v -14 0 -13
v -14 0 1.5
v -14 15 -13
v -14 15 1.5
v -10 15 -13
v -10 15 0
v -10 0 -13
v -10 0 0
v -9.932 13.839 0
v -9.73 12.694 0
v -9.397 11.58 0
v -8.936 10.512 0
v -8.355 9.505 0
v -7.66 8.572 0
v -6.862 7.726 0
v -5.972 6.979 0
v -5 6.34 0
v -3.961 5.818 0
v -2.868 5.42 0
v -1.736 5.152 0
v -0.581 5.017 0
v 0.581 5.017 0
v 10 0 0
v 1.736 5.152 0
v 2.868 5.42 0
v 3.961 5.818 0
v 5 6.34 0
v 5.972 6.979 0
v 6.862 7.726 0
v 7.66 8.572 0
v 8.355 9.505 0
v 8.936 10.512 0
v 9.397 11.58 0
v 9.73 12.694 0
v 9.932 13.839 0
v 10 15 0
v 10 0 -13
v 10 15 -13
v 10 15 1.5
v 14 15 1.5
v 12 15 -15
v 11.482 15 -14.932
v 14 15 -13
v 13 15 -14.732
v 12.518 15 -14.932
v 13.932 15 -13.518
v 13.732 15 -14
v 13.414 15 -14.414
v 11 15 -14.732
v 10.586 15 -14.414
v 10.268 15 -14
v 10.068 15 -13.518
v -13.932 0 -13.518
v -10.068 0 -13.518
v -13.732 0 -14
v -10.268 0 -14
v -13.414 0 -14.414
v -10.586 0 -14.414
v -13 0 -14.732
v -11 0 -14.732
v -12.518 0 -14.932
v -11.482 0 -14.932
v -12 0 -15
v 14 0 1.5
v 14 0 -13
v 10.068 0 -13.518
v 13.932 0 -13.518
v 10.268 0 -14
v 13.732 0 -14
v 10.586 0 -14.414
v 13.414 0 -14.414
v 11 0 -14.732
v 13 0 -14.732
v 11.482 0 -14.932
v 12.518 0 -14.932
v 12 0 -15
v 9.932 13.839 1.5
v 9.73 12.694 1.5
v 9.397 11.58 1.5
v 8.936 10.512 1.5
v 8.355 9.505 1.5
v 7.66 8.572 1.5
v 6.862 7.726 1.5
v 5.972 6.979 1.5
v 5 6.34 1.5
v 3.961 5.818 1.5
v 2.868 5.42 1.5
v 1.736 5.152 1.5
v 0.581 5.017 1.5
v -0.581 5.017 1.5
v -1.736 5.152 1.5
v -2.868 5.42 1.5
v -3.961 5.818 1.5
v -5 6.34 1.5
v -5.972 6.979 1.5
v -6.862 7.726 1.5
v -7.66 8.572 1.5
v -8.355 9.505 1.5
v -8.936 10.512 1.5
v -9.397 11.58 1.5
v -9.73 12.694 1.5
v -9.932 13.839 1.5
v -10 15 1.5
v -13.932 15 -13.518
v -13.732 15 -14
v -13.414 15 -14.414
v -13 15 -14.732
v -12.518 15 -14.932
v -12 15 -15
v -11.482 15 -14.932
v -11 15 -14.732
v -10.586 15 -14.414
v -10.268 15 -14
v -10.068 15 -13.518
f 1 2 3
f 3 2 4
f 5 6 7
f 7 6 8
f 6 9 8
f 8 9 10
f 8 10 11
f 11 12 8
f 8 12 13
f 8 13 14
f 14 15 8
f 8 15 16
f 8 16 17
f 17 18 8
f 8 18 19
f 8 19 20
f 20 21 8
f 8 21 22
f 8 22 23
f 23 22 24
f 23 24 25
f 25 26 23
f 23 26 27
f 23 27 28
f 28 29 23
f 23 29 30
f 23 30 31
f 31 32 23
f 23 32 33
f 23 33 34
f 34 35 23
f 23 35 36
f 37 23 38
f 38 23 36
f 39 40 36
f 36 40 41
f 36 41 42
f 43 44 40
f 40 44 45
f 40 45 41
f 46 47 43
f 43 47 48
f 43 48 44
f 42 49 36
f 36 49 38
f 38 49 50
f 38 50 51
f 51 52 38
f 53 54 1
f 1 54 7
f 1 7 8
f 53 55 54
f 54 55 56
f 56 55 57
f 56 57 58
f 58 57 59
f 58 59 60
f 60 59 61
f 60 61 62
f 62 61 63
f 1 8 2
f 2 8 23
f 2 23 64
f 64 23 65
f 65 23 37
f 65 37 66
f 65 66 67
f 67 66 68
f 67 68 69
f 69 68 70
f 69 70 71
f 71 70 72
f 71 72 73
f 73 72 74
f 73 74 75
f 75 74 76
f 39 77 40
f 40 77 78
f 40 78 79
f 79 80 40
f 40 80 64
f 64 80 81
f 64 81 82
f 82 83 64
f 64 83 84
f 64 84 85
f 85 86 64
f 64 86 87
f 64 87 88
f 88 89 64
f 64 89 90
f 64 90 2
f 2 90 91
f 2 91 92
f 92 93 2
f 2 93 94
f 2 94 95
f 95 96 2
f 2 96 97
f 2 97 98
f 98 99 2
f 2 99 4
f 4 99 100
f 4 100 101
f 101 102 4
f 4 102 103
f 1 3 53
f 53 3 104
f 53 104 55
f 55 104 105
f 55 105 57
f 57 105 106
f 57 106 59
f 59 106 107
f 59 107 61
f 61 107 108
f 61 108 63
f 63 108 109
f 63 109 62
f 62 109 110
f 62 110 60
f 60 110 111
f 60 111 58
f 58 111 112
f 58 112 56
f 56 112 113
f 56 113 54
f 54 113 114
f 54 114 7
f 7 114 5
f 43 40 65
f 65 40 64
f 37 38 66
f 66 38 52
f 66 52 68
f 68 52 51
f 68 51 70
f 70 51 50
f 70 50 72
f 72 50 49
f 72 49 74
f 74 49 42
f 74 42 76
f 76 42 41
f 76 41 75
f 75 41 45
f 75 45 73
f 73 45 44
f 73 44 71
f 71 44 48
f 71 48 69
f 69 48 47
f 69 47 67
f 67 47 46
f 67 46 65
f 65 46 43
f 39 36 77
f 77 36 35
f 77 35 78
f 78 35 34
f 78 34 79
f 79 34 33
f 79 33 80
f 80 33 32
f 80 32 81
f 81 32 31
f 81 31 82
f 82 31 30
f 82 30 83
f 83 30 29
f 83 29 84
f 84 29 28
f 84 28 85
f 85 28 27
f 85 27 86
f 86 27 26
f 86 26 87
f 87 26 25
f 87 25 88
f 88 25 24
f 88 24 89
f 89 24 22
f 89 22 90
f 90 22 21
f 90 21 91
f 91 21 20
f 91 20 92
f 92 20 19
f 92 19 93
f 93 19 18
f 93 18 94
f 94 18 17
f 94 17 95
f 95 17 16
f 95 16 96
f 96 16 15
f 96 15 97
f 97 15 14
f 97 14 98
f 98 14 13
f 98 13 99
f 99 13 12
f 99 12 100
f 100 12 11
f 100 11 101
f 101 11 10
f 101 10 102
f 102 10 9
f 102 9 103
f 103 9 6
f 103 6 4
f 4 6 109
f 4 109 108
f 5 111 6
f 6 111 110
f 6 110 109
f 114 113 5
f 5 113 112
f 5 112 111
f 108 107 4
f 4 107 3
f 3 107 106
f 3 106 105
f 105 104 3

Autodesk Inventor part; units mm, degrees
ref_plane "YZ Plane" through (0, 0, 0) normal (1, 0, 0) x (0, 1, 0)
ref_plane "XZ Plane" through (0, 0, 0) normal (0, 1, 0) x (-1, 0, 0)
ref_plane "XY Plane" through (0, 0, 0) normal (0, 0, 1) x (1, 0, 0)
sketch "Sketch1" plane through (0, 0, 0) normal (0, 1, 0) x (-1, 0, 0)
  line L0 (14, 0) -> (-14, 0) projected
  line L1 (0, -18.3) -> (0, 4.8) projected
  line L2 (14, 1.5) -> (-14, 1.5)
  line L3 (-14, 1.5) -> (-14, 0)
  line L4 (-10, 0) -> (10, 0)
  line L5 (14, 0) -> (14, 1.5)
  line L6 (10, 0) -> (10, -15)
  line L7 (10, -15) -> (14, -15)
  line L8 (14, -15) -> (14, 0)
  line L9 (-10, 0) -> (-10, -15)
  line L10 (-10, -15) -> (-14, -15)
  line L11 (-14, -15) -> (-14, 0)
  point P0 (0, 0)
  dimension "d0" = 28
  dimension "d1" = 4
  dimension "d2" = 15
  dimension "d3" = 1.5
  dimension "d5" = 4
  dimension "d6" = 15
extrude "Extrusion1" add sketch "Sketch1" along normal blind 15
fillet "Fillet1" radius 2 4 edges at (14, 7.5, -15) (10, 7.5, -15) (-10, 7.5, -15) (-14, 7.5, -15)
sketch "Sketch2" plane through (-14, 0, 1.5) normal (0, 0, 1) x (1, 0, 0)
  line L0 (0, 0) -> (28, 0) projected
  line L1 (28, 0) -> (28, 15) projected
  line L2 (0, 15) -> (28, 15) projected
  line L3 (0, 0) -> (0, 15) projected
  line L4 (24, 0) -> (24, 15) projected
  line L5 (4, 0) -> (4, 15) projected
  circle A0 centre (14, 15) radius 10
  point P0 (14, 0)
extrude "Extrusion2" cut sketch "Sketch2" against normal blind 15 contours A0 L2 | L2 A0
properties part number "encastre pinza pilar central"
